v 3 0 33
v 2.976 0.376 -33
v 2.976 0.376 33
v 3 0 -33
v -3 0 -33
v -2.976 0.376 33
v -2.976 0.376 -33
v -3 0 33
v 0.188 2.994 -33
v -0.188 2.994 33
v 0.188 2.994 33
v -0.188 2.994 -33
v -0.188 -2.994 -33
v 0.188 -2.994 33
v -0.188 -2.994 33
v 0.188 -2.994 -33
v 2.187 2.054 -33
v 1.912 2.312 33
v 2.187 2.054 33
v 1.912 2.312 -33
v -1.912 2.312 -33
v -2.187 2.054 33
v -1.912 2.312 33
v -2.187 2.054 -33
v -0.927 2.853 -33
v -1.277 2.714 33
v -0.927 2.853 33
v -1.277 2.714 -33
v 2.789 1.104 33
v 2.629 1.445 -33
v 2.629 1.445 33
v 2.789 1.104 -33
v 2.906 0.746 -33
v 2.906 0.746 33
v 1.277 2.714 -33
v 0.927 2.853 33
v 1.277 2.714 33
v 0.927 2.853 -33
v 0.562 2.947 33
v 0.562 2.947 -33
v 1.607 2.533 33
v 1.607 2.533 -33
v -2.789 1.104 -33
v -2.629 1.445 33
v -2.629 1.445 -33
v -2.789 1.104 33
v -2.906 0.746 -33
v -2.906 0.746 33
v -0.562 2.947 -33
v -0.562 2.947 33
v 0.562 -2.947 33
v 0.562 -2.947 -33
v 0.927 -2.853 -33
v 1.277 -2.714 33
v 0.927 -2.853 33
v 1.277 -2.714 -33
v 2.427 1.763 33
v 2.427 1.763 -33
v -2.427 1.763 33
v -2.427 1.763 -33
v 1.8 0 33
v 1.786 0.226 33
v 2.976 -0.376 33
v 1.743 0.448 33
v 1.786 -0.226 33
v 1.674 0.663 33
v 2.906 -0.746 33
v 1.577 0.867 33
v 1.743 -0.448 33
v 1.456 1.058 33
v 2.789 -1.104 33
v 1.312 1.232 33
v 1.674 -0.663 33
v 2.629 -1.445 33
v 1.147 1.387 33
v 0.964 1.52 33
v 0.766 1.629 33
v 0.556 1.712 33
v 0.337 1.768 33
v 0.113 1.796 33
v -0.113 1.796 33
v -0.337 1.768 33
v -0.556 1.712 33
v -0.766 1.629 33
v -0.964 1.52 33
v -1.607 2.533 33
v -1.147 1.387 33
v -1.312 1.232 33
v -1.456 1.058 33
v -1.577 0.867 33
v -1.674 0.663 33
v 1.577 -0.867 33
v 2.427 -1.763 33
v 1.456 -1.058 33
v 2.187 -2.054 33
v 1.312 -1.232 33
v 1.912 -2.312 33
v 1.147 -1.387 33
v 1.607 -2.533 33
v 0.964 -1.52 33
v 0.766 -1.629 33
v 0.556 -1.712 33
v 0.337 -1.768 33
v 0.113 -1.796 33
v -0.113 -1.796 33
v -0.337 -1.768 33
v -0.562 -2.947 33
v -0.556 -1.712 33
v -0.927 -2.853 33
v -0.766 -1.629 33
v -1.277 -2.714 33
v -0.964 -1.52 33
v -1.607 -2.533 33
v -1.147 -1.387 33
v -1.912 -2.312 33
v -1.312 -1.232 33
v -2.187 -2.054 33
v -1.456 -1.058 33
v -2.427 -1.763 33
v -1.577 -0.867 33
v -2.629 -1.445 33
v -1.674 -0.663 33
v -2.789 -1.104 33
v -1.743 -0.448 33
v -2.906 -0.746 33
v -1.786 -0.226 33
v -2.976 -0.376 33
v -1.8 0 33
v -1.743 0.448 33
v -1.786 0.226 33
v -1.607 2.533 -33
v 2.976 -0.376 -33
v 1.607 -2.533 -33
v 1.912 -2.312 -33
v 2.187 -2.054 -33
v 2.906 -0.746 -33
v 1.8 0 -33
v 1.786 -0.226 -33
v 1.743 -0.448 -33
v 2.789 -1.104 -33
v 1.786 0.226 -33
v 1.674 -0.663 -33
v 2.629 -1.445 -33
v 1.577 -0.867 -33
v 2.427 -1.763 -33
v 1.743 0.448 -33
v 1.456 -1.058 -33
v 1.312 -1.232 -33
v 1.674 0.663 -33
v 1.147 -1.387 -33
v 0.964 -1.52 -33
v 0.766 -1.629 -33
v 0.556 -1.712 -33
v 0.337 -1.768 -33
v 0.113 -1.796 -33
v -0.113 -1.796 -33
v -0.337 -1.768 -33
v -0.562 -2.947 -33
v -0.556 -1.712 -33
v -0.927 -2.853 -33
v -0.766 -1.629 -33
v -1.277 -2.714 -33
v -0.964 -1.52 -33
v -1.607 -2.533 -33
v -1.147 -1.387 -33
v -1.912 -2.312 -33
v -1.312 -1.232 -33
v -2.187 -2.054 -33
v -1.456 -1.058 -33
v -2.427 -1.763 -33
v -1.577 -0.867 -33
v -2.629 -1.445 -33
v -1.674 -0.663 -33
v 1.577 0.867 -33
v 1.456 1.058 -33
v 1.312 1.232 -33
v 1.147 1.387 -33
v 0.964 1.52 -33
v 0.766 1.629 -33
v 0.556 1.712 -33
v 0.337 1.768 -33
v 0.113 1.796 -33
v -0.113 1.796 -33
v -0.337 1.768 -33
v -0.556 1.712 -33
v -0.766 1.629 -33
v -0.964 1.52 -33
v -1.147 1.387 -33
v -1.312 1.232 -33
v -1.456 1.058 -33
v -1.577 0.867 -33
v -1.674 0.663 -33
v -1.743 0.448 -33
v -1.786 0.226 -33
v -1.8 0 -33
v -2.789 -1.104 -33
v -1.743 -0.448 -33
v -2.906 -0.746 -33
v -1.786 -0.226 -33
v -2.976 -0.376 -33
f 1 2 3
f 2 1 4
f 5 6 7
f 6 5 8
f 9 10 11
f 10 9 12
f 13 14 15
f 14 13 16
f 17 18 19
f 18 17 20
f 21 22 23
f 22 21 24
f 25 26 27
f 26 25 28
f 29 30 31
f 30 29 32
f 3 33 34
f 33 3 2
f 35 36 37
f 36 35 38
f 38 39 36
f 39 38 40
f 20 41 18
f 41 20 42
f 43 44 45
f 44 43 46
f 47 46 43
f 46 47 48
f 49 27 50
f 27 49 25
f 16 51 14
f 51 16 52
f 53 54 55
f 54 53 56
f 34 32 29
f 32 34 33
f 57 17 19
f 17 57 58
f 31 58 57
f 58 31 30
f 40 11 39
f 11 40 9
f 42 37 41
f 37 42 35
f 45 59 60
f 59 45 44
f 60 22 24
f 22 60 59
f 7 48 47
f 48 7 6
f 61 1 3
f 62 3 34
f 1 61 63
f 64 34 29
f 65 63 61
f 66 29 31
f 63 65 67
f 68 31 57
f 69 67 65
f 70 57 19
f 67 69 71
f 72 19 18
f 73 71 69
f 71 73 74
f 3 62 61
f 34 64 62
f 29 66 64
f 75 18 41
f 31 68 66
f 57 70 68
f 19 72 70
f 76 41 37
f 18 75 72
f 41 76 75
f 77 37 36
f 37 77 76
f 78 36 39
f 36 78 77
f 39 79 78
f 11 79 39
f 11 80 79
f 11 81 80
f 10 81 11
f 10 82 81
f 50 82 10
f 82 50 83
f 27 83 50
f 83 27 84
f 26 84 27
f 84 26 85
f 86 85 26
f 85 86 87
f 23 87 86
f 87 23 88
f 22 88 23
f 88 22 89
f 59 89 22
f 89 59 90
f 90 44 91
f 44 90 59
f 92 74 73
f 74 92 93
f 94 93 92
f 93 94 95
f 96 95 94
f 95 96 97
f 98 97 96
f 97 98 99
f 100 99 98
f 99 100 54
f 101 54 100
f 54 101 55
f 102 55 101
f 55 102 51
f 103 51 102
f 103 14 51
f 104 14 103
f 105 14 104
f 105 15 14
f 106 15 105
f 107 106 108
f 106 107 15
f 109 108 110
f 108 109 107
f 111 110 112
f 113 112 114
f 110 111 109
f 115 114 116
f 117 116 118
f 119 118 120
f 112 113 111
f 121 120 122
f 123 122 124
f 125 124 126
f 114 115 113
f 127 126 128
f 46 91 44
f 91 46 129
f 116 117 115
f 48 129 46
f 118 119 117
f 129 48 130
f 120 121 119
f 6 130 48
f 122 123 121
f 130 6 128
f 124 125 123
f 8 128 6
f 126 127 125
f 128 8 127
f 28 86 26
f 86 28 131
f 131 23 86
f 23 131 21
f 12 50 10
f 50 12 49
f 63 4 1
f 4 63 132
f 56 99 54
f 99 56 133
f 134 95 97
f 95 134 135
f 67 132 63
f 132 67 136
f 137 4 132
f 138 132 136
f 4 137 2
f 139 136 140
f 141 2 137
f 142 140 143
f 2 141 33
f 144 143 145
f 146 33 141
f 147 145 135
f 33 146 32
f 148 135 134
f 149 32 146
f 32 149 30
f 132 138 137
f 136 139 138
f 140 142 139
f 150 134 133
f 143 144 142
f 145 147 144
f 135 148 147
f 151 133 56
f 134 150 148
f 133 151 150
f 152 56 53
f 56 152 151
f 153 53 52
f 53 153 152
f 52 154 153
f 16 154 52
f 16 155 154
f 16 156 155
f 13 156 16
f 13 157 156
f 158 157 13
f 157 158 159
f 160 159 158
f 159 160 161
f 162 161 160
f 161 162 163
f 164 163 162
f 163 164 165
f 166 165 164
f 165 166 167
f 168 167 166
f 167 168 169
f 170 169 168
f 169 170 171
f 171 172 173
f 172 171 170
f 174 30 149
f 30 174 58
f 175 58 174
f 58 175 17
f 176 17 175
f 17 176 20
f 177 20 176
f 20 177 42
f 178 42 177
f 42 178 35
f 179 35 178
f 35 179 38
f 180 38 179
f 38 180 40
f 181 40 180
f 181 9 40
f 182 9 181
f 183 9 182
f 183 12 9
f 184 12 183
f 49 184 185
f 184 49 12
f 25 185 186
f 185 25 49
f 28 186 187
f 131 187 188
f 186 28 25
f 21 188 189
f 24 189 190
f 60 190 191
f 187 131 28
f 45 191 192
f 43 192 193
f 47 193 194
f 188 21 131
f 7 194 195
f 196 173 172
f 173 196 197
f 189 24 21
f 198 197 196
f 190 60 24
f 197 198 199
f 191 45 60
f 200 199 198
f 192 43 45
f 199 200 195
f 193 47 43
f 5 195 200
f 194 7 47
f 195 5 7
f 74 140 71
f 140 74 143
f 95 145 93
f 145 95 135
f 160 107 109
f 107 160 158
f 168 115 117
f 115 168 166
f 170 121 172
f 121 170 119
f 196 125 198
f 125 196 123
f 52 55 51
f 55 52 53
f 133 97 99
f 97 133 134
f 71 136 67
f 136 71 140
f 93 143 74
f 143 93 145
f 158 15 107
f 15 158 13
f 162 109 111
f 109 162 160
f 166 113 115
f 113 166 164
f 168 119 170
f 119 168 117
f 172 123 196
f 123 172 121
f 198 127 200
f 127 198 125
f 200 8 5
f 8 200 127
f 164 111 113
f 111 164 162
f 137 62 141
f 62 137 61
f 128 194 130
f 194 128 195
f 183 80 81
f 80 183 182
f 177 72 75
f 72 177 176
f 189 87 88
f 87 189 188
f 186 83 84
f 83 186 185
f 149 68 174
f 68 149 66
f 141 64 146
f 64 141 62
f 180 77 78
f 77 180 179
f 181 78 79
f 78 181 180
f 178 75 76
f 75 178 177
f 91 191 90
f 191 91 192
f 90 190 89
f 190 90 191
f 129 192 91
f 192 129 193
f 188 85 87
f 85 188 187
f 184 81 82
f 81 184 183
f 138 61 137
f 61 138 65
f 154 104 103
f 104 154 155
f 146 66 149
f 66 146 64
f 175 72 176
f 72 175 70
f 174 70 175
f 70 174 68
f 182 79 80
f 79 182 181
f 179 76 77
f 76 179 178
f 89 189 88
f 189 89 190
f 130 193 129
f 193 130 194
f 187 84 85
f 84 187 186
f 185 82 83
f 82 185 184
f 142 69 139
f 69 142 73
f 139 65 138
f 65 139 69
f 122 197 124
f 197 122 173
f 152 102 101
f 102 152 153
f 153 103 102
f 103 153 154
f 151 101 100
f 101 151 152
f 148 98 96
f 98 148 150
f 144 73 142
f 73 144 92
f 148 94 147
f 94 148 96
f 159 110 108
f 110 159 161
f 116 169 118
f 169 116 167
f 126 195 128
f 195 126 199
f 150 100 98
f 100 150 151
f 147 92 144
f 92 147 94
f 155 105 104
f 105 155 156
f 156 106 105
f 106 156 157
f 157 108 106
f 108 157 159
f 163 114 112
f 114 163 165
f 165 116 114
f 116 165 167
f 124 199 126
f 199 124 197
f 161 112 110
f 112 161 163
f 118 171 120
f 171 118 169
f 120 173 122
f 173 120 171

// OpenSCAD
$fn = 50;


difference() {
	union() {
		translate(v = [0, 0, -33.0000000000]) {
			cylinder(h = 66, r = 3.0000000000);
		}
	}
	union() {
		translate(v = [0, 0, -100.0000000000]) {
			cylinder(h = 200, r = 1.8000000000);
		}
	}
}
